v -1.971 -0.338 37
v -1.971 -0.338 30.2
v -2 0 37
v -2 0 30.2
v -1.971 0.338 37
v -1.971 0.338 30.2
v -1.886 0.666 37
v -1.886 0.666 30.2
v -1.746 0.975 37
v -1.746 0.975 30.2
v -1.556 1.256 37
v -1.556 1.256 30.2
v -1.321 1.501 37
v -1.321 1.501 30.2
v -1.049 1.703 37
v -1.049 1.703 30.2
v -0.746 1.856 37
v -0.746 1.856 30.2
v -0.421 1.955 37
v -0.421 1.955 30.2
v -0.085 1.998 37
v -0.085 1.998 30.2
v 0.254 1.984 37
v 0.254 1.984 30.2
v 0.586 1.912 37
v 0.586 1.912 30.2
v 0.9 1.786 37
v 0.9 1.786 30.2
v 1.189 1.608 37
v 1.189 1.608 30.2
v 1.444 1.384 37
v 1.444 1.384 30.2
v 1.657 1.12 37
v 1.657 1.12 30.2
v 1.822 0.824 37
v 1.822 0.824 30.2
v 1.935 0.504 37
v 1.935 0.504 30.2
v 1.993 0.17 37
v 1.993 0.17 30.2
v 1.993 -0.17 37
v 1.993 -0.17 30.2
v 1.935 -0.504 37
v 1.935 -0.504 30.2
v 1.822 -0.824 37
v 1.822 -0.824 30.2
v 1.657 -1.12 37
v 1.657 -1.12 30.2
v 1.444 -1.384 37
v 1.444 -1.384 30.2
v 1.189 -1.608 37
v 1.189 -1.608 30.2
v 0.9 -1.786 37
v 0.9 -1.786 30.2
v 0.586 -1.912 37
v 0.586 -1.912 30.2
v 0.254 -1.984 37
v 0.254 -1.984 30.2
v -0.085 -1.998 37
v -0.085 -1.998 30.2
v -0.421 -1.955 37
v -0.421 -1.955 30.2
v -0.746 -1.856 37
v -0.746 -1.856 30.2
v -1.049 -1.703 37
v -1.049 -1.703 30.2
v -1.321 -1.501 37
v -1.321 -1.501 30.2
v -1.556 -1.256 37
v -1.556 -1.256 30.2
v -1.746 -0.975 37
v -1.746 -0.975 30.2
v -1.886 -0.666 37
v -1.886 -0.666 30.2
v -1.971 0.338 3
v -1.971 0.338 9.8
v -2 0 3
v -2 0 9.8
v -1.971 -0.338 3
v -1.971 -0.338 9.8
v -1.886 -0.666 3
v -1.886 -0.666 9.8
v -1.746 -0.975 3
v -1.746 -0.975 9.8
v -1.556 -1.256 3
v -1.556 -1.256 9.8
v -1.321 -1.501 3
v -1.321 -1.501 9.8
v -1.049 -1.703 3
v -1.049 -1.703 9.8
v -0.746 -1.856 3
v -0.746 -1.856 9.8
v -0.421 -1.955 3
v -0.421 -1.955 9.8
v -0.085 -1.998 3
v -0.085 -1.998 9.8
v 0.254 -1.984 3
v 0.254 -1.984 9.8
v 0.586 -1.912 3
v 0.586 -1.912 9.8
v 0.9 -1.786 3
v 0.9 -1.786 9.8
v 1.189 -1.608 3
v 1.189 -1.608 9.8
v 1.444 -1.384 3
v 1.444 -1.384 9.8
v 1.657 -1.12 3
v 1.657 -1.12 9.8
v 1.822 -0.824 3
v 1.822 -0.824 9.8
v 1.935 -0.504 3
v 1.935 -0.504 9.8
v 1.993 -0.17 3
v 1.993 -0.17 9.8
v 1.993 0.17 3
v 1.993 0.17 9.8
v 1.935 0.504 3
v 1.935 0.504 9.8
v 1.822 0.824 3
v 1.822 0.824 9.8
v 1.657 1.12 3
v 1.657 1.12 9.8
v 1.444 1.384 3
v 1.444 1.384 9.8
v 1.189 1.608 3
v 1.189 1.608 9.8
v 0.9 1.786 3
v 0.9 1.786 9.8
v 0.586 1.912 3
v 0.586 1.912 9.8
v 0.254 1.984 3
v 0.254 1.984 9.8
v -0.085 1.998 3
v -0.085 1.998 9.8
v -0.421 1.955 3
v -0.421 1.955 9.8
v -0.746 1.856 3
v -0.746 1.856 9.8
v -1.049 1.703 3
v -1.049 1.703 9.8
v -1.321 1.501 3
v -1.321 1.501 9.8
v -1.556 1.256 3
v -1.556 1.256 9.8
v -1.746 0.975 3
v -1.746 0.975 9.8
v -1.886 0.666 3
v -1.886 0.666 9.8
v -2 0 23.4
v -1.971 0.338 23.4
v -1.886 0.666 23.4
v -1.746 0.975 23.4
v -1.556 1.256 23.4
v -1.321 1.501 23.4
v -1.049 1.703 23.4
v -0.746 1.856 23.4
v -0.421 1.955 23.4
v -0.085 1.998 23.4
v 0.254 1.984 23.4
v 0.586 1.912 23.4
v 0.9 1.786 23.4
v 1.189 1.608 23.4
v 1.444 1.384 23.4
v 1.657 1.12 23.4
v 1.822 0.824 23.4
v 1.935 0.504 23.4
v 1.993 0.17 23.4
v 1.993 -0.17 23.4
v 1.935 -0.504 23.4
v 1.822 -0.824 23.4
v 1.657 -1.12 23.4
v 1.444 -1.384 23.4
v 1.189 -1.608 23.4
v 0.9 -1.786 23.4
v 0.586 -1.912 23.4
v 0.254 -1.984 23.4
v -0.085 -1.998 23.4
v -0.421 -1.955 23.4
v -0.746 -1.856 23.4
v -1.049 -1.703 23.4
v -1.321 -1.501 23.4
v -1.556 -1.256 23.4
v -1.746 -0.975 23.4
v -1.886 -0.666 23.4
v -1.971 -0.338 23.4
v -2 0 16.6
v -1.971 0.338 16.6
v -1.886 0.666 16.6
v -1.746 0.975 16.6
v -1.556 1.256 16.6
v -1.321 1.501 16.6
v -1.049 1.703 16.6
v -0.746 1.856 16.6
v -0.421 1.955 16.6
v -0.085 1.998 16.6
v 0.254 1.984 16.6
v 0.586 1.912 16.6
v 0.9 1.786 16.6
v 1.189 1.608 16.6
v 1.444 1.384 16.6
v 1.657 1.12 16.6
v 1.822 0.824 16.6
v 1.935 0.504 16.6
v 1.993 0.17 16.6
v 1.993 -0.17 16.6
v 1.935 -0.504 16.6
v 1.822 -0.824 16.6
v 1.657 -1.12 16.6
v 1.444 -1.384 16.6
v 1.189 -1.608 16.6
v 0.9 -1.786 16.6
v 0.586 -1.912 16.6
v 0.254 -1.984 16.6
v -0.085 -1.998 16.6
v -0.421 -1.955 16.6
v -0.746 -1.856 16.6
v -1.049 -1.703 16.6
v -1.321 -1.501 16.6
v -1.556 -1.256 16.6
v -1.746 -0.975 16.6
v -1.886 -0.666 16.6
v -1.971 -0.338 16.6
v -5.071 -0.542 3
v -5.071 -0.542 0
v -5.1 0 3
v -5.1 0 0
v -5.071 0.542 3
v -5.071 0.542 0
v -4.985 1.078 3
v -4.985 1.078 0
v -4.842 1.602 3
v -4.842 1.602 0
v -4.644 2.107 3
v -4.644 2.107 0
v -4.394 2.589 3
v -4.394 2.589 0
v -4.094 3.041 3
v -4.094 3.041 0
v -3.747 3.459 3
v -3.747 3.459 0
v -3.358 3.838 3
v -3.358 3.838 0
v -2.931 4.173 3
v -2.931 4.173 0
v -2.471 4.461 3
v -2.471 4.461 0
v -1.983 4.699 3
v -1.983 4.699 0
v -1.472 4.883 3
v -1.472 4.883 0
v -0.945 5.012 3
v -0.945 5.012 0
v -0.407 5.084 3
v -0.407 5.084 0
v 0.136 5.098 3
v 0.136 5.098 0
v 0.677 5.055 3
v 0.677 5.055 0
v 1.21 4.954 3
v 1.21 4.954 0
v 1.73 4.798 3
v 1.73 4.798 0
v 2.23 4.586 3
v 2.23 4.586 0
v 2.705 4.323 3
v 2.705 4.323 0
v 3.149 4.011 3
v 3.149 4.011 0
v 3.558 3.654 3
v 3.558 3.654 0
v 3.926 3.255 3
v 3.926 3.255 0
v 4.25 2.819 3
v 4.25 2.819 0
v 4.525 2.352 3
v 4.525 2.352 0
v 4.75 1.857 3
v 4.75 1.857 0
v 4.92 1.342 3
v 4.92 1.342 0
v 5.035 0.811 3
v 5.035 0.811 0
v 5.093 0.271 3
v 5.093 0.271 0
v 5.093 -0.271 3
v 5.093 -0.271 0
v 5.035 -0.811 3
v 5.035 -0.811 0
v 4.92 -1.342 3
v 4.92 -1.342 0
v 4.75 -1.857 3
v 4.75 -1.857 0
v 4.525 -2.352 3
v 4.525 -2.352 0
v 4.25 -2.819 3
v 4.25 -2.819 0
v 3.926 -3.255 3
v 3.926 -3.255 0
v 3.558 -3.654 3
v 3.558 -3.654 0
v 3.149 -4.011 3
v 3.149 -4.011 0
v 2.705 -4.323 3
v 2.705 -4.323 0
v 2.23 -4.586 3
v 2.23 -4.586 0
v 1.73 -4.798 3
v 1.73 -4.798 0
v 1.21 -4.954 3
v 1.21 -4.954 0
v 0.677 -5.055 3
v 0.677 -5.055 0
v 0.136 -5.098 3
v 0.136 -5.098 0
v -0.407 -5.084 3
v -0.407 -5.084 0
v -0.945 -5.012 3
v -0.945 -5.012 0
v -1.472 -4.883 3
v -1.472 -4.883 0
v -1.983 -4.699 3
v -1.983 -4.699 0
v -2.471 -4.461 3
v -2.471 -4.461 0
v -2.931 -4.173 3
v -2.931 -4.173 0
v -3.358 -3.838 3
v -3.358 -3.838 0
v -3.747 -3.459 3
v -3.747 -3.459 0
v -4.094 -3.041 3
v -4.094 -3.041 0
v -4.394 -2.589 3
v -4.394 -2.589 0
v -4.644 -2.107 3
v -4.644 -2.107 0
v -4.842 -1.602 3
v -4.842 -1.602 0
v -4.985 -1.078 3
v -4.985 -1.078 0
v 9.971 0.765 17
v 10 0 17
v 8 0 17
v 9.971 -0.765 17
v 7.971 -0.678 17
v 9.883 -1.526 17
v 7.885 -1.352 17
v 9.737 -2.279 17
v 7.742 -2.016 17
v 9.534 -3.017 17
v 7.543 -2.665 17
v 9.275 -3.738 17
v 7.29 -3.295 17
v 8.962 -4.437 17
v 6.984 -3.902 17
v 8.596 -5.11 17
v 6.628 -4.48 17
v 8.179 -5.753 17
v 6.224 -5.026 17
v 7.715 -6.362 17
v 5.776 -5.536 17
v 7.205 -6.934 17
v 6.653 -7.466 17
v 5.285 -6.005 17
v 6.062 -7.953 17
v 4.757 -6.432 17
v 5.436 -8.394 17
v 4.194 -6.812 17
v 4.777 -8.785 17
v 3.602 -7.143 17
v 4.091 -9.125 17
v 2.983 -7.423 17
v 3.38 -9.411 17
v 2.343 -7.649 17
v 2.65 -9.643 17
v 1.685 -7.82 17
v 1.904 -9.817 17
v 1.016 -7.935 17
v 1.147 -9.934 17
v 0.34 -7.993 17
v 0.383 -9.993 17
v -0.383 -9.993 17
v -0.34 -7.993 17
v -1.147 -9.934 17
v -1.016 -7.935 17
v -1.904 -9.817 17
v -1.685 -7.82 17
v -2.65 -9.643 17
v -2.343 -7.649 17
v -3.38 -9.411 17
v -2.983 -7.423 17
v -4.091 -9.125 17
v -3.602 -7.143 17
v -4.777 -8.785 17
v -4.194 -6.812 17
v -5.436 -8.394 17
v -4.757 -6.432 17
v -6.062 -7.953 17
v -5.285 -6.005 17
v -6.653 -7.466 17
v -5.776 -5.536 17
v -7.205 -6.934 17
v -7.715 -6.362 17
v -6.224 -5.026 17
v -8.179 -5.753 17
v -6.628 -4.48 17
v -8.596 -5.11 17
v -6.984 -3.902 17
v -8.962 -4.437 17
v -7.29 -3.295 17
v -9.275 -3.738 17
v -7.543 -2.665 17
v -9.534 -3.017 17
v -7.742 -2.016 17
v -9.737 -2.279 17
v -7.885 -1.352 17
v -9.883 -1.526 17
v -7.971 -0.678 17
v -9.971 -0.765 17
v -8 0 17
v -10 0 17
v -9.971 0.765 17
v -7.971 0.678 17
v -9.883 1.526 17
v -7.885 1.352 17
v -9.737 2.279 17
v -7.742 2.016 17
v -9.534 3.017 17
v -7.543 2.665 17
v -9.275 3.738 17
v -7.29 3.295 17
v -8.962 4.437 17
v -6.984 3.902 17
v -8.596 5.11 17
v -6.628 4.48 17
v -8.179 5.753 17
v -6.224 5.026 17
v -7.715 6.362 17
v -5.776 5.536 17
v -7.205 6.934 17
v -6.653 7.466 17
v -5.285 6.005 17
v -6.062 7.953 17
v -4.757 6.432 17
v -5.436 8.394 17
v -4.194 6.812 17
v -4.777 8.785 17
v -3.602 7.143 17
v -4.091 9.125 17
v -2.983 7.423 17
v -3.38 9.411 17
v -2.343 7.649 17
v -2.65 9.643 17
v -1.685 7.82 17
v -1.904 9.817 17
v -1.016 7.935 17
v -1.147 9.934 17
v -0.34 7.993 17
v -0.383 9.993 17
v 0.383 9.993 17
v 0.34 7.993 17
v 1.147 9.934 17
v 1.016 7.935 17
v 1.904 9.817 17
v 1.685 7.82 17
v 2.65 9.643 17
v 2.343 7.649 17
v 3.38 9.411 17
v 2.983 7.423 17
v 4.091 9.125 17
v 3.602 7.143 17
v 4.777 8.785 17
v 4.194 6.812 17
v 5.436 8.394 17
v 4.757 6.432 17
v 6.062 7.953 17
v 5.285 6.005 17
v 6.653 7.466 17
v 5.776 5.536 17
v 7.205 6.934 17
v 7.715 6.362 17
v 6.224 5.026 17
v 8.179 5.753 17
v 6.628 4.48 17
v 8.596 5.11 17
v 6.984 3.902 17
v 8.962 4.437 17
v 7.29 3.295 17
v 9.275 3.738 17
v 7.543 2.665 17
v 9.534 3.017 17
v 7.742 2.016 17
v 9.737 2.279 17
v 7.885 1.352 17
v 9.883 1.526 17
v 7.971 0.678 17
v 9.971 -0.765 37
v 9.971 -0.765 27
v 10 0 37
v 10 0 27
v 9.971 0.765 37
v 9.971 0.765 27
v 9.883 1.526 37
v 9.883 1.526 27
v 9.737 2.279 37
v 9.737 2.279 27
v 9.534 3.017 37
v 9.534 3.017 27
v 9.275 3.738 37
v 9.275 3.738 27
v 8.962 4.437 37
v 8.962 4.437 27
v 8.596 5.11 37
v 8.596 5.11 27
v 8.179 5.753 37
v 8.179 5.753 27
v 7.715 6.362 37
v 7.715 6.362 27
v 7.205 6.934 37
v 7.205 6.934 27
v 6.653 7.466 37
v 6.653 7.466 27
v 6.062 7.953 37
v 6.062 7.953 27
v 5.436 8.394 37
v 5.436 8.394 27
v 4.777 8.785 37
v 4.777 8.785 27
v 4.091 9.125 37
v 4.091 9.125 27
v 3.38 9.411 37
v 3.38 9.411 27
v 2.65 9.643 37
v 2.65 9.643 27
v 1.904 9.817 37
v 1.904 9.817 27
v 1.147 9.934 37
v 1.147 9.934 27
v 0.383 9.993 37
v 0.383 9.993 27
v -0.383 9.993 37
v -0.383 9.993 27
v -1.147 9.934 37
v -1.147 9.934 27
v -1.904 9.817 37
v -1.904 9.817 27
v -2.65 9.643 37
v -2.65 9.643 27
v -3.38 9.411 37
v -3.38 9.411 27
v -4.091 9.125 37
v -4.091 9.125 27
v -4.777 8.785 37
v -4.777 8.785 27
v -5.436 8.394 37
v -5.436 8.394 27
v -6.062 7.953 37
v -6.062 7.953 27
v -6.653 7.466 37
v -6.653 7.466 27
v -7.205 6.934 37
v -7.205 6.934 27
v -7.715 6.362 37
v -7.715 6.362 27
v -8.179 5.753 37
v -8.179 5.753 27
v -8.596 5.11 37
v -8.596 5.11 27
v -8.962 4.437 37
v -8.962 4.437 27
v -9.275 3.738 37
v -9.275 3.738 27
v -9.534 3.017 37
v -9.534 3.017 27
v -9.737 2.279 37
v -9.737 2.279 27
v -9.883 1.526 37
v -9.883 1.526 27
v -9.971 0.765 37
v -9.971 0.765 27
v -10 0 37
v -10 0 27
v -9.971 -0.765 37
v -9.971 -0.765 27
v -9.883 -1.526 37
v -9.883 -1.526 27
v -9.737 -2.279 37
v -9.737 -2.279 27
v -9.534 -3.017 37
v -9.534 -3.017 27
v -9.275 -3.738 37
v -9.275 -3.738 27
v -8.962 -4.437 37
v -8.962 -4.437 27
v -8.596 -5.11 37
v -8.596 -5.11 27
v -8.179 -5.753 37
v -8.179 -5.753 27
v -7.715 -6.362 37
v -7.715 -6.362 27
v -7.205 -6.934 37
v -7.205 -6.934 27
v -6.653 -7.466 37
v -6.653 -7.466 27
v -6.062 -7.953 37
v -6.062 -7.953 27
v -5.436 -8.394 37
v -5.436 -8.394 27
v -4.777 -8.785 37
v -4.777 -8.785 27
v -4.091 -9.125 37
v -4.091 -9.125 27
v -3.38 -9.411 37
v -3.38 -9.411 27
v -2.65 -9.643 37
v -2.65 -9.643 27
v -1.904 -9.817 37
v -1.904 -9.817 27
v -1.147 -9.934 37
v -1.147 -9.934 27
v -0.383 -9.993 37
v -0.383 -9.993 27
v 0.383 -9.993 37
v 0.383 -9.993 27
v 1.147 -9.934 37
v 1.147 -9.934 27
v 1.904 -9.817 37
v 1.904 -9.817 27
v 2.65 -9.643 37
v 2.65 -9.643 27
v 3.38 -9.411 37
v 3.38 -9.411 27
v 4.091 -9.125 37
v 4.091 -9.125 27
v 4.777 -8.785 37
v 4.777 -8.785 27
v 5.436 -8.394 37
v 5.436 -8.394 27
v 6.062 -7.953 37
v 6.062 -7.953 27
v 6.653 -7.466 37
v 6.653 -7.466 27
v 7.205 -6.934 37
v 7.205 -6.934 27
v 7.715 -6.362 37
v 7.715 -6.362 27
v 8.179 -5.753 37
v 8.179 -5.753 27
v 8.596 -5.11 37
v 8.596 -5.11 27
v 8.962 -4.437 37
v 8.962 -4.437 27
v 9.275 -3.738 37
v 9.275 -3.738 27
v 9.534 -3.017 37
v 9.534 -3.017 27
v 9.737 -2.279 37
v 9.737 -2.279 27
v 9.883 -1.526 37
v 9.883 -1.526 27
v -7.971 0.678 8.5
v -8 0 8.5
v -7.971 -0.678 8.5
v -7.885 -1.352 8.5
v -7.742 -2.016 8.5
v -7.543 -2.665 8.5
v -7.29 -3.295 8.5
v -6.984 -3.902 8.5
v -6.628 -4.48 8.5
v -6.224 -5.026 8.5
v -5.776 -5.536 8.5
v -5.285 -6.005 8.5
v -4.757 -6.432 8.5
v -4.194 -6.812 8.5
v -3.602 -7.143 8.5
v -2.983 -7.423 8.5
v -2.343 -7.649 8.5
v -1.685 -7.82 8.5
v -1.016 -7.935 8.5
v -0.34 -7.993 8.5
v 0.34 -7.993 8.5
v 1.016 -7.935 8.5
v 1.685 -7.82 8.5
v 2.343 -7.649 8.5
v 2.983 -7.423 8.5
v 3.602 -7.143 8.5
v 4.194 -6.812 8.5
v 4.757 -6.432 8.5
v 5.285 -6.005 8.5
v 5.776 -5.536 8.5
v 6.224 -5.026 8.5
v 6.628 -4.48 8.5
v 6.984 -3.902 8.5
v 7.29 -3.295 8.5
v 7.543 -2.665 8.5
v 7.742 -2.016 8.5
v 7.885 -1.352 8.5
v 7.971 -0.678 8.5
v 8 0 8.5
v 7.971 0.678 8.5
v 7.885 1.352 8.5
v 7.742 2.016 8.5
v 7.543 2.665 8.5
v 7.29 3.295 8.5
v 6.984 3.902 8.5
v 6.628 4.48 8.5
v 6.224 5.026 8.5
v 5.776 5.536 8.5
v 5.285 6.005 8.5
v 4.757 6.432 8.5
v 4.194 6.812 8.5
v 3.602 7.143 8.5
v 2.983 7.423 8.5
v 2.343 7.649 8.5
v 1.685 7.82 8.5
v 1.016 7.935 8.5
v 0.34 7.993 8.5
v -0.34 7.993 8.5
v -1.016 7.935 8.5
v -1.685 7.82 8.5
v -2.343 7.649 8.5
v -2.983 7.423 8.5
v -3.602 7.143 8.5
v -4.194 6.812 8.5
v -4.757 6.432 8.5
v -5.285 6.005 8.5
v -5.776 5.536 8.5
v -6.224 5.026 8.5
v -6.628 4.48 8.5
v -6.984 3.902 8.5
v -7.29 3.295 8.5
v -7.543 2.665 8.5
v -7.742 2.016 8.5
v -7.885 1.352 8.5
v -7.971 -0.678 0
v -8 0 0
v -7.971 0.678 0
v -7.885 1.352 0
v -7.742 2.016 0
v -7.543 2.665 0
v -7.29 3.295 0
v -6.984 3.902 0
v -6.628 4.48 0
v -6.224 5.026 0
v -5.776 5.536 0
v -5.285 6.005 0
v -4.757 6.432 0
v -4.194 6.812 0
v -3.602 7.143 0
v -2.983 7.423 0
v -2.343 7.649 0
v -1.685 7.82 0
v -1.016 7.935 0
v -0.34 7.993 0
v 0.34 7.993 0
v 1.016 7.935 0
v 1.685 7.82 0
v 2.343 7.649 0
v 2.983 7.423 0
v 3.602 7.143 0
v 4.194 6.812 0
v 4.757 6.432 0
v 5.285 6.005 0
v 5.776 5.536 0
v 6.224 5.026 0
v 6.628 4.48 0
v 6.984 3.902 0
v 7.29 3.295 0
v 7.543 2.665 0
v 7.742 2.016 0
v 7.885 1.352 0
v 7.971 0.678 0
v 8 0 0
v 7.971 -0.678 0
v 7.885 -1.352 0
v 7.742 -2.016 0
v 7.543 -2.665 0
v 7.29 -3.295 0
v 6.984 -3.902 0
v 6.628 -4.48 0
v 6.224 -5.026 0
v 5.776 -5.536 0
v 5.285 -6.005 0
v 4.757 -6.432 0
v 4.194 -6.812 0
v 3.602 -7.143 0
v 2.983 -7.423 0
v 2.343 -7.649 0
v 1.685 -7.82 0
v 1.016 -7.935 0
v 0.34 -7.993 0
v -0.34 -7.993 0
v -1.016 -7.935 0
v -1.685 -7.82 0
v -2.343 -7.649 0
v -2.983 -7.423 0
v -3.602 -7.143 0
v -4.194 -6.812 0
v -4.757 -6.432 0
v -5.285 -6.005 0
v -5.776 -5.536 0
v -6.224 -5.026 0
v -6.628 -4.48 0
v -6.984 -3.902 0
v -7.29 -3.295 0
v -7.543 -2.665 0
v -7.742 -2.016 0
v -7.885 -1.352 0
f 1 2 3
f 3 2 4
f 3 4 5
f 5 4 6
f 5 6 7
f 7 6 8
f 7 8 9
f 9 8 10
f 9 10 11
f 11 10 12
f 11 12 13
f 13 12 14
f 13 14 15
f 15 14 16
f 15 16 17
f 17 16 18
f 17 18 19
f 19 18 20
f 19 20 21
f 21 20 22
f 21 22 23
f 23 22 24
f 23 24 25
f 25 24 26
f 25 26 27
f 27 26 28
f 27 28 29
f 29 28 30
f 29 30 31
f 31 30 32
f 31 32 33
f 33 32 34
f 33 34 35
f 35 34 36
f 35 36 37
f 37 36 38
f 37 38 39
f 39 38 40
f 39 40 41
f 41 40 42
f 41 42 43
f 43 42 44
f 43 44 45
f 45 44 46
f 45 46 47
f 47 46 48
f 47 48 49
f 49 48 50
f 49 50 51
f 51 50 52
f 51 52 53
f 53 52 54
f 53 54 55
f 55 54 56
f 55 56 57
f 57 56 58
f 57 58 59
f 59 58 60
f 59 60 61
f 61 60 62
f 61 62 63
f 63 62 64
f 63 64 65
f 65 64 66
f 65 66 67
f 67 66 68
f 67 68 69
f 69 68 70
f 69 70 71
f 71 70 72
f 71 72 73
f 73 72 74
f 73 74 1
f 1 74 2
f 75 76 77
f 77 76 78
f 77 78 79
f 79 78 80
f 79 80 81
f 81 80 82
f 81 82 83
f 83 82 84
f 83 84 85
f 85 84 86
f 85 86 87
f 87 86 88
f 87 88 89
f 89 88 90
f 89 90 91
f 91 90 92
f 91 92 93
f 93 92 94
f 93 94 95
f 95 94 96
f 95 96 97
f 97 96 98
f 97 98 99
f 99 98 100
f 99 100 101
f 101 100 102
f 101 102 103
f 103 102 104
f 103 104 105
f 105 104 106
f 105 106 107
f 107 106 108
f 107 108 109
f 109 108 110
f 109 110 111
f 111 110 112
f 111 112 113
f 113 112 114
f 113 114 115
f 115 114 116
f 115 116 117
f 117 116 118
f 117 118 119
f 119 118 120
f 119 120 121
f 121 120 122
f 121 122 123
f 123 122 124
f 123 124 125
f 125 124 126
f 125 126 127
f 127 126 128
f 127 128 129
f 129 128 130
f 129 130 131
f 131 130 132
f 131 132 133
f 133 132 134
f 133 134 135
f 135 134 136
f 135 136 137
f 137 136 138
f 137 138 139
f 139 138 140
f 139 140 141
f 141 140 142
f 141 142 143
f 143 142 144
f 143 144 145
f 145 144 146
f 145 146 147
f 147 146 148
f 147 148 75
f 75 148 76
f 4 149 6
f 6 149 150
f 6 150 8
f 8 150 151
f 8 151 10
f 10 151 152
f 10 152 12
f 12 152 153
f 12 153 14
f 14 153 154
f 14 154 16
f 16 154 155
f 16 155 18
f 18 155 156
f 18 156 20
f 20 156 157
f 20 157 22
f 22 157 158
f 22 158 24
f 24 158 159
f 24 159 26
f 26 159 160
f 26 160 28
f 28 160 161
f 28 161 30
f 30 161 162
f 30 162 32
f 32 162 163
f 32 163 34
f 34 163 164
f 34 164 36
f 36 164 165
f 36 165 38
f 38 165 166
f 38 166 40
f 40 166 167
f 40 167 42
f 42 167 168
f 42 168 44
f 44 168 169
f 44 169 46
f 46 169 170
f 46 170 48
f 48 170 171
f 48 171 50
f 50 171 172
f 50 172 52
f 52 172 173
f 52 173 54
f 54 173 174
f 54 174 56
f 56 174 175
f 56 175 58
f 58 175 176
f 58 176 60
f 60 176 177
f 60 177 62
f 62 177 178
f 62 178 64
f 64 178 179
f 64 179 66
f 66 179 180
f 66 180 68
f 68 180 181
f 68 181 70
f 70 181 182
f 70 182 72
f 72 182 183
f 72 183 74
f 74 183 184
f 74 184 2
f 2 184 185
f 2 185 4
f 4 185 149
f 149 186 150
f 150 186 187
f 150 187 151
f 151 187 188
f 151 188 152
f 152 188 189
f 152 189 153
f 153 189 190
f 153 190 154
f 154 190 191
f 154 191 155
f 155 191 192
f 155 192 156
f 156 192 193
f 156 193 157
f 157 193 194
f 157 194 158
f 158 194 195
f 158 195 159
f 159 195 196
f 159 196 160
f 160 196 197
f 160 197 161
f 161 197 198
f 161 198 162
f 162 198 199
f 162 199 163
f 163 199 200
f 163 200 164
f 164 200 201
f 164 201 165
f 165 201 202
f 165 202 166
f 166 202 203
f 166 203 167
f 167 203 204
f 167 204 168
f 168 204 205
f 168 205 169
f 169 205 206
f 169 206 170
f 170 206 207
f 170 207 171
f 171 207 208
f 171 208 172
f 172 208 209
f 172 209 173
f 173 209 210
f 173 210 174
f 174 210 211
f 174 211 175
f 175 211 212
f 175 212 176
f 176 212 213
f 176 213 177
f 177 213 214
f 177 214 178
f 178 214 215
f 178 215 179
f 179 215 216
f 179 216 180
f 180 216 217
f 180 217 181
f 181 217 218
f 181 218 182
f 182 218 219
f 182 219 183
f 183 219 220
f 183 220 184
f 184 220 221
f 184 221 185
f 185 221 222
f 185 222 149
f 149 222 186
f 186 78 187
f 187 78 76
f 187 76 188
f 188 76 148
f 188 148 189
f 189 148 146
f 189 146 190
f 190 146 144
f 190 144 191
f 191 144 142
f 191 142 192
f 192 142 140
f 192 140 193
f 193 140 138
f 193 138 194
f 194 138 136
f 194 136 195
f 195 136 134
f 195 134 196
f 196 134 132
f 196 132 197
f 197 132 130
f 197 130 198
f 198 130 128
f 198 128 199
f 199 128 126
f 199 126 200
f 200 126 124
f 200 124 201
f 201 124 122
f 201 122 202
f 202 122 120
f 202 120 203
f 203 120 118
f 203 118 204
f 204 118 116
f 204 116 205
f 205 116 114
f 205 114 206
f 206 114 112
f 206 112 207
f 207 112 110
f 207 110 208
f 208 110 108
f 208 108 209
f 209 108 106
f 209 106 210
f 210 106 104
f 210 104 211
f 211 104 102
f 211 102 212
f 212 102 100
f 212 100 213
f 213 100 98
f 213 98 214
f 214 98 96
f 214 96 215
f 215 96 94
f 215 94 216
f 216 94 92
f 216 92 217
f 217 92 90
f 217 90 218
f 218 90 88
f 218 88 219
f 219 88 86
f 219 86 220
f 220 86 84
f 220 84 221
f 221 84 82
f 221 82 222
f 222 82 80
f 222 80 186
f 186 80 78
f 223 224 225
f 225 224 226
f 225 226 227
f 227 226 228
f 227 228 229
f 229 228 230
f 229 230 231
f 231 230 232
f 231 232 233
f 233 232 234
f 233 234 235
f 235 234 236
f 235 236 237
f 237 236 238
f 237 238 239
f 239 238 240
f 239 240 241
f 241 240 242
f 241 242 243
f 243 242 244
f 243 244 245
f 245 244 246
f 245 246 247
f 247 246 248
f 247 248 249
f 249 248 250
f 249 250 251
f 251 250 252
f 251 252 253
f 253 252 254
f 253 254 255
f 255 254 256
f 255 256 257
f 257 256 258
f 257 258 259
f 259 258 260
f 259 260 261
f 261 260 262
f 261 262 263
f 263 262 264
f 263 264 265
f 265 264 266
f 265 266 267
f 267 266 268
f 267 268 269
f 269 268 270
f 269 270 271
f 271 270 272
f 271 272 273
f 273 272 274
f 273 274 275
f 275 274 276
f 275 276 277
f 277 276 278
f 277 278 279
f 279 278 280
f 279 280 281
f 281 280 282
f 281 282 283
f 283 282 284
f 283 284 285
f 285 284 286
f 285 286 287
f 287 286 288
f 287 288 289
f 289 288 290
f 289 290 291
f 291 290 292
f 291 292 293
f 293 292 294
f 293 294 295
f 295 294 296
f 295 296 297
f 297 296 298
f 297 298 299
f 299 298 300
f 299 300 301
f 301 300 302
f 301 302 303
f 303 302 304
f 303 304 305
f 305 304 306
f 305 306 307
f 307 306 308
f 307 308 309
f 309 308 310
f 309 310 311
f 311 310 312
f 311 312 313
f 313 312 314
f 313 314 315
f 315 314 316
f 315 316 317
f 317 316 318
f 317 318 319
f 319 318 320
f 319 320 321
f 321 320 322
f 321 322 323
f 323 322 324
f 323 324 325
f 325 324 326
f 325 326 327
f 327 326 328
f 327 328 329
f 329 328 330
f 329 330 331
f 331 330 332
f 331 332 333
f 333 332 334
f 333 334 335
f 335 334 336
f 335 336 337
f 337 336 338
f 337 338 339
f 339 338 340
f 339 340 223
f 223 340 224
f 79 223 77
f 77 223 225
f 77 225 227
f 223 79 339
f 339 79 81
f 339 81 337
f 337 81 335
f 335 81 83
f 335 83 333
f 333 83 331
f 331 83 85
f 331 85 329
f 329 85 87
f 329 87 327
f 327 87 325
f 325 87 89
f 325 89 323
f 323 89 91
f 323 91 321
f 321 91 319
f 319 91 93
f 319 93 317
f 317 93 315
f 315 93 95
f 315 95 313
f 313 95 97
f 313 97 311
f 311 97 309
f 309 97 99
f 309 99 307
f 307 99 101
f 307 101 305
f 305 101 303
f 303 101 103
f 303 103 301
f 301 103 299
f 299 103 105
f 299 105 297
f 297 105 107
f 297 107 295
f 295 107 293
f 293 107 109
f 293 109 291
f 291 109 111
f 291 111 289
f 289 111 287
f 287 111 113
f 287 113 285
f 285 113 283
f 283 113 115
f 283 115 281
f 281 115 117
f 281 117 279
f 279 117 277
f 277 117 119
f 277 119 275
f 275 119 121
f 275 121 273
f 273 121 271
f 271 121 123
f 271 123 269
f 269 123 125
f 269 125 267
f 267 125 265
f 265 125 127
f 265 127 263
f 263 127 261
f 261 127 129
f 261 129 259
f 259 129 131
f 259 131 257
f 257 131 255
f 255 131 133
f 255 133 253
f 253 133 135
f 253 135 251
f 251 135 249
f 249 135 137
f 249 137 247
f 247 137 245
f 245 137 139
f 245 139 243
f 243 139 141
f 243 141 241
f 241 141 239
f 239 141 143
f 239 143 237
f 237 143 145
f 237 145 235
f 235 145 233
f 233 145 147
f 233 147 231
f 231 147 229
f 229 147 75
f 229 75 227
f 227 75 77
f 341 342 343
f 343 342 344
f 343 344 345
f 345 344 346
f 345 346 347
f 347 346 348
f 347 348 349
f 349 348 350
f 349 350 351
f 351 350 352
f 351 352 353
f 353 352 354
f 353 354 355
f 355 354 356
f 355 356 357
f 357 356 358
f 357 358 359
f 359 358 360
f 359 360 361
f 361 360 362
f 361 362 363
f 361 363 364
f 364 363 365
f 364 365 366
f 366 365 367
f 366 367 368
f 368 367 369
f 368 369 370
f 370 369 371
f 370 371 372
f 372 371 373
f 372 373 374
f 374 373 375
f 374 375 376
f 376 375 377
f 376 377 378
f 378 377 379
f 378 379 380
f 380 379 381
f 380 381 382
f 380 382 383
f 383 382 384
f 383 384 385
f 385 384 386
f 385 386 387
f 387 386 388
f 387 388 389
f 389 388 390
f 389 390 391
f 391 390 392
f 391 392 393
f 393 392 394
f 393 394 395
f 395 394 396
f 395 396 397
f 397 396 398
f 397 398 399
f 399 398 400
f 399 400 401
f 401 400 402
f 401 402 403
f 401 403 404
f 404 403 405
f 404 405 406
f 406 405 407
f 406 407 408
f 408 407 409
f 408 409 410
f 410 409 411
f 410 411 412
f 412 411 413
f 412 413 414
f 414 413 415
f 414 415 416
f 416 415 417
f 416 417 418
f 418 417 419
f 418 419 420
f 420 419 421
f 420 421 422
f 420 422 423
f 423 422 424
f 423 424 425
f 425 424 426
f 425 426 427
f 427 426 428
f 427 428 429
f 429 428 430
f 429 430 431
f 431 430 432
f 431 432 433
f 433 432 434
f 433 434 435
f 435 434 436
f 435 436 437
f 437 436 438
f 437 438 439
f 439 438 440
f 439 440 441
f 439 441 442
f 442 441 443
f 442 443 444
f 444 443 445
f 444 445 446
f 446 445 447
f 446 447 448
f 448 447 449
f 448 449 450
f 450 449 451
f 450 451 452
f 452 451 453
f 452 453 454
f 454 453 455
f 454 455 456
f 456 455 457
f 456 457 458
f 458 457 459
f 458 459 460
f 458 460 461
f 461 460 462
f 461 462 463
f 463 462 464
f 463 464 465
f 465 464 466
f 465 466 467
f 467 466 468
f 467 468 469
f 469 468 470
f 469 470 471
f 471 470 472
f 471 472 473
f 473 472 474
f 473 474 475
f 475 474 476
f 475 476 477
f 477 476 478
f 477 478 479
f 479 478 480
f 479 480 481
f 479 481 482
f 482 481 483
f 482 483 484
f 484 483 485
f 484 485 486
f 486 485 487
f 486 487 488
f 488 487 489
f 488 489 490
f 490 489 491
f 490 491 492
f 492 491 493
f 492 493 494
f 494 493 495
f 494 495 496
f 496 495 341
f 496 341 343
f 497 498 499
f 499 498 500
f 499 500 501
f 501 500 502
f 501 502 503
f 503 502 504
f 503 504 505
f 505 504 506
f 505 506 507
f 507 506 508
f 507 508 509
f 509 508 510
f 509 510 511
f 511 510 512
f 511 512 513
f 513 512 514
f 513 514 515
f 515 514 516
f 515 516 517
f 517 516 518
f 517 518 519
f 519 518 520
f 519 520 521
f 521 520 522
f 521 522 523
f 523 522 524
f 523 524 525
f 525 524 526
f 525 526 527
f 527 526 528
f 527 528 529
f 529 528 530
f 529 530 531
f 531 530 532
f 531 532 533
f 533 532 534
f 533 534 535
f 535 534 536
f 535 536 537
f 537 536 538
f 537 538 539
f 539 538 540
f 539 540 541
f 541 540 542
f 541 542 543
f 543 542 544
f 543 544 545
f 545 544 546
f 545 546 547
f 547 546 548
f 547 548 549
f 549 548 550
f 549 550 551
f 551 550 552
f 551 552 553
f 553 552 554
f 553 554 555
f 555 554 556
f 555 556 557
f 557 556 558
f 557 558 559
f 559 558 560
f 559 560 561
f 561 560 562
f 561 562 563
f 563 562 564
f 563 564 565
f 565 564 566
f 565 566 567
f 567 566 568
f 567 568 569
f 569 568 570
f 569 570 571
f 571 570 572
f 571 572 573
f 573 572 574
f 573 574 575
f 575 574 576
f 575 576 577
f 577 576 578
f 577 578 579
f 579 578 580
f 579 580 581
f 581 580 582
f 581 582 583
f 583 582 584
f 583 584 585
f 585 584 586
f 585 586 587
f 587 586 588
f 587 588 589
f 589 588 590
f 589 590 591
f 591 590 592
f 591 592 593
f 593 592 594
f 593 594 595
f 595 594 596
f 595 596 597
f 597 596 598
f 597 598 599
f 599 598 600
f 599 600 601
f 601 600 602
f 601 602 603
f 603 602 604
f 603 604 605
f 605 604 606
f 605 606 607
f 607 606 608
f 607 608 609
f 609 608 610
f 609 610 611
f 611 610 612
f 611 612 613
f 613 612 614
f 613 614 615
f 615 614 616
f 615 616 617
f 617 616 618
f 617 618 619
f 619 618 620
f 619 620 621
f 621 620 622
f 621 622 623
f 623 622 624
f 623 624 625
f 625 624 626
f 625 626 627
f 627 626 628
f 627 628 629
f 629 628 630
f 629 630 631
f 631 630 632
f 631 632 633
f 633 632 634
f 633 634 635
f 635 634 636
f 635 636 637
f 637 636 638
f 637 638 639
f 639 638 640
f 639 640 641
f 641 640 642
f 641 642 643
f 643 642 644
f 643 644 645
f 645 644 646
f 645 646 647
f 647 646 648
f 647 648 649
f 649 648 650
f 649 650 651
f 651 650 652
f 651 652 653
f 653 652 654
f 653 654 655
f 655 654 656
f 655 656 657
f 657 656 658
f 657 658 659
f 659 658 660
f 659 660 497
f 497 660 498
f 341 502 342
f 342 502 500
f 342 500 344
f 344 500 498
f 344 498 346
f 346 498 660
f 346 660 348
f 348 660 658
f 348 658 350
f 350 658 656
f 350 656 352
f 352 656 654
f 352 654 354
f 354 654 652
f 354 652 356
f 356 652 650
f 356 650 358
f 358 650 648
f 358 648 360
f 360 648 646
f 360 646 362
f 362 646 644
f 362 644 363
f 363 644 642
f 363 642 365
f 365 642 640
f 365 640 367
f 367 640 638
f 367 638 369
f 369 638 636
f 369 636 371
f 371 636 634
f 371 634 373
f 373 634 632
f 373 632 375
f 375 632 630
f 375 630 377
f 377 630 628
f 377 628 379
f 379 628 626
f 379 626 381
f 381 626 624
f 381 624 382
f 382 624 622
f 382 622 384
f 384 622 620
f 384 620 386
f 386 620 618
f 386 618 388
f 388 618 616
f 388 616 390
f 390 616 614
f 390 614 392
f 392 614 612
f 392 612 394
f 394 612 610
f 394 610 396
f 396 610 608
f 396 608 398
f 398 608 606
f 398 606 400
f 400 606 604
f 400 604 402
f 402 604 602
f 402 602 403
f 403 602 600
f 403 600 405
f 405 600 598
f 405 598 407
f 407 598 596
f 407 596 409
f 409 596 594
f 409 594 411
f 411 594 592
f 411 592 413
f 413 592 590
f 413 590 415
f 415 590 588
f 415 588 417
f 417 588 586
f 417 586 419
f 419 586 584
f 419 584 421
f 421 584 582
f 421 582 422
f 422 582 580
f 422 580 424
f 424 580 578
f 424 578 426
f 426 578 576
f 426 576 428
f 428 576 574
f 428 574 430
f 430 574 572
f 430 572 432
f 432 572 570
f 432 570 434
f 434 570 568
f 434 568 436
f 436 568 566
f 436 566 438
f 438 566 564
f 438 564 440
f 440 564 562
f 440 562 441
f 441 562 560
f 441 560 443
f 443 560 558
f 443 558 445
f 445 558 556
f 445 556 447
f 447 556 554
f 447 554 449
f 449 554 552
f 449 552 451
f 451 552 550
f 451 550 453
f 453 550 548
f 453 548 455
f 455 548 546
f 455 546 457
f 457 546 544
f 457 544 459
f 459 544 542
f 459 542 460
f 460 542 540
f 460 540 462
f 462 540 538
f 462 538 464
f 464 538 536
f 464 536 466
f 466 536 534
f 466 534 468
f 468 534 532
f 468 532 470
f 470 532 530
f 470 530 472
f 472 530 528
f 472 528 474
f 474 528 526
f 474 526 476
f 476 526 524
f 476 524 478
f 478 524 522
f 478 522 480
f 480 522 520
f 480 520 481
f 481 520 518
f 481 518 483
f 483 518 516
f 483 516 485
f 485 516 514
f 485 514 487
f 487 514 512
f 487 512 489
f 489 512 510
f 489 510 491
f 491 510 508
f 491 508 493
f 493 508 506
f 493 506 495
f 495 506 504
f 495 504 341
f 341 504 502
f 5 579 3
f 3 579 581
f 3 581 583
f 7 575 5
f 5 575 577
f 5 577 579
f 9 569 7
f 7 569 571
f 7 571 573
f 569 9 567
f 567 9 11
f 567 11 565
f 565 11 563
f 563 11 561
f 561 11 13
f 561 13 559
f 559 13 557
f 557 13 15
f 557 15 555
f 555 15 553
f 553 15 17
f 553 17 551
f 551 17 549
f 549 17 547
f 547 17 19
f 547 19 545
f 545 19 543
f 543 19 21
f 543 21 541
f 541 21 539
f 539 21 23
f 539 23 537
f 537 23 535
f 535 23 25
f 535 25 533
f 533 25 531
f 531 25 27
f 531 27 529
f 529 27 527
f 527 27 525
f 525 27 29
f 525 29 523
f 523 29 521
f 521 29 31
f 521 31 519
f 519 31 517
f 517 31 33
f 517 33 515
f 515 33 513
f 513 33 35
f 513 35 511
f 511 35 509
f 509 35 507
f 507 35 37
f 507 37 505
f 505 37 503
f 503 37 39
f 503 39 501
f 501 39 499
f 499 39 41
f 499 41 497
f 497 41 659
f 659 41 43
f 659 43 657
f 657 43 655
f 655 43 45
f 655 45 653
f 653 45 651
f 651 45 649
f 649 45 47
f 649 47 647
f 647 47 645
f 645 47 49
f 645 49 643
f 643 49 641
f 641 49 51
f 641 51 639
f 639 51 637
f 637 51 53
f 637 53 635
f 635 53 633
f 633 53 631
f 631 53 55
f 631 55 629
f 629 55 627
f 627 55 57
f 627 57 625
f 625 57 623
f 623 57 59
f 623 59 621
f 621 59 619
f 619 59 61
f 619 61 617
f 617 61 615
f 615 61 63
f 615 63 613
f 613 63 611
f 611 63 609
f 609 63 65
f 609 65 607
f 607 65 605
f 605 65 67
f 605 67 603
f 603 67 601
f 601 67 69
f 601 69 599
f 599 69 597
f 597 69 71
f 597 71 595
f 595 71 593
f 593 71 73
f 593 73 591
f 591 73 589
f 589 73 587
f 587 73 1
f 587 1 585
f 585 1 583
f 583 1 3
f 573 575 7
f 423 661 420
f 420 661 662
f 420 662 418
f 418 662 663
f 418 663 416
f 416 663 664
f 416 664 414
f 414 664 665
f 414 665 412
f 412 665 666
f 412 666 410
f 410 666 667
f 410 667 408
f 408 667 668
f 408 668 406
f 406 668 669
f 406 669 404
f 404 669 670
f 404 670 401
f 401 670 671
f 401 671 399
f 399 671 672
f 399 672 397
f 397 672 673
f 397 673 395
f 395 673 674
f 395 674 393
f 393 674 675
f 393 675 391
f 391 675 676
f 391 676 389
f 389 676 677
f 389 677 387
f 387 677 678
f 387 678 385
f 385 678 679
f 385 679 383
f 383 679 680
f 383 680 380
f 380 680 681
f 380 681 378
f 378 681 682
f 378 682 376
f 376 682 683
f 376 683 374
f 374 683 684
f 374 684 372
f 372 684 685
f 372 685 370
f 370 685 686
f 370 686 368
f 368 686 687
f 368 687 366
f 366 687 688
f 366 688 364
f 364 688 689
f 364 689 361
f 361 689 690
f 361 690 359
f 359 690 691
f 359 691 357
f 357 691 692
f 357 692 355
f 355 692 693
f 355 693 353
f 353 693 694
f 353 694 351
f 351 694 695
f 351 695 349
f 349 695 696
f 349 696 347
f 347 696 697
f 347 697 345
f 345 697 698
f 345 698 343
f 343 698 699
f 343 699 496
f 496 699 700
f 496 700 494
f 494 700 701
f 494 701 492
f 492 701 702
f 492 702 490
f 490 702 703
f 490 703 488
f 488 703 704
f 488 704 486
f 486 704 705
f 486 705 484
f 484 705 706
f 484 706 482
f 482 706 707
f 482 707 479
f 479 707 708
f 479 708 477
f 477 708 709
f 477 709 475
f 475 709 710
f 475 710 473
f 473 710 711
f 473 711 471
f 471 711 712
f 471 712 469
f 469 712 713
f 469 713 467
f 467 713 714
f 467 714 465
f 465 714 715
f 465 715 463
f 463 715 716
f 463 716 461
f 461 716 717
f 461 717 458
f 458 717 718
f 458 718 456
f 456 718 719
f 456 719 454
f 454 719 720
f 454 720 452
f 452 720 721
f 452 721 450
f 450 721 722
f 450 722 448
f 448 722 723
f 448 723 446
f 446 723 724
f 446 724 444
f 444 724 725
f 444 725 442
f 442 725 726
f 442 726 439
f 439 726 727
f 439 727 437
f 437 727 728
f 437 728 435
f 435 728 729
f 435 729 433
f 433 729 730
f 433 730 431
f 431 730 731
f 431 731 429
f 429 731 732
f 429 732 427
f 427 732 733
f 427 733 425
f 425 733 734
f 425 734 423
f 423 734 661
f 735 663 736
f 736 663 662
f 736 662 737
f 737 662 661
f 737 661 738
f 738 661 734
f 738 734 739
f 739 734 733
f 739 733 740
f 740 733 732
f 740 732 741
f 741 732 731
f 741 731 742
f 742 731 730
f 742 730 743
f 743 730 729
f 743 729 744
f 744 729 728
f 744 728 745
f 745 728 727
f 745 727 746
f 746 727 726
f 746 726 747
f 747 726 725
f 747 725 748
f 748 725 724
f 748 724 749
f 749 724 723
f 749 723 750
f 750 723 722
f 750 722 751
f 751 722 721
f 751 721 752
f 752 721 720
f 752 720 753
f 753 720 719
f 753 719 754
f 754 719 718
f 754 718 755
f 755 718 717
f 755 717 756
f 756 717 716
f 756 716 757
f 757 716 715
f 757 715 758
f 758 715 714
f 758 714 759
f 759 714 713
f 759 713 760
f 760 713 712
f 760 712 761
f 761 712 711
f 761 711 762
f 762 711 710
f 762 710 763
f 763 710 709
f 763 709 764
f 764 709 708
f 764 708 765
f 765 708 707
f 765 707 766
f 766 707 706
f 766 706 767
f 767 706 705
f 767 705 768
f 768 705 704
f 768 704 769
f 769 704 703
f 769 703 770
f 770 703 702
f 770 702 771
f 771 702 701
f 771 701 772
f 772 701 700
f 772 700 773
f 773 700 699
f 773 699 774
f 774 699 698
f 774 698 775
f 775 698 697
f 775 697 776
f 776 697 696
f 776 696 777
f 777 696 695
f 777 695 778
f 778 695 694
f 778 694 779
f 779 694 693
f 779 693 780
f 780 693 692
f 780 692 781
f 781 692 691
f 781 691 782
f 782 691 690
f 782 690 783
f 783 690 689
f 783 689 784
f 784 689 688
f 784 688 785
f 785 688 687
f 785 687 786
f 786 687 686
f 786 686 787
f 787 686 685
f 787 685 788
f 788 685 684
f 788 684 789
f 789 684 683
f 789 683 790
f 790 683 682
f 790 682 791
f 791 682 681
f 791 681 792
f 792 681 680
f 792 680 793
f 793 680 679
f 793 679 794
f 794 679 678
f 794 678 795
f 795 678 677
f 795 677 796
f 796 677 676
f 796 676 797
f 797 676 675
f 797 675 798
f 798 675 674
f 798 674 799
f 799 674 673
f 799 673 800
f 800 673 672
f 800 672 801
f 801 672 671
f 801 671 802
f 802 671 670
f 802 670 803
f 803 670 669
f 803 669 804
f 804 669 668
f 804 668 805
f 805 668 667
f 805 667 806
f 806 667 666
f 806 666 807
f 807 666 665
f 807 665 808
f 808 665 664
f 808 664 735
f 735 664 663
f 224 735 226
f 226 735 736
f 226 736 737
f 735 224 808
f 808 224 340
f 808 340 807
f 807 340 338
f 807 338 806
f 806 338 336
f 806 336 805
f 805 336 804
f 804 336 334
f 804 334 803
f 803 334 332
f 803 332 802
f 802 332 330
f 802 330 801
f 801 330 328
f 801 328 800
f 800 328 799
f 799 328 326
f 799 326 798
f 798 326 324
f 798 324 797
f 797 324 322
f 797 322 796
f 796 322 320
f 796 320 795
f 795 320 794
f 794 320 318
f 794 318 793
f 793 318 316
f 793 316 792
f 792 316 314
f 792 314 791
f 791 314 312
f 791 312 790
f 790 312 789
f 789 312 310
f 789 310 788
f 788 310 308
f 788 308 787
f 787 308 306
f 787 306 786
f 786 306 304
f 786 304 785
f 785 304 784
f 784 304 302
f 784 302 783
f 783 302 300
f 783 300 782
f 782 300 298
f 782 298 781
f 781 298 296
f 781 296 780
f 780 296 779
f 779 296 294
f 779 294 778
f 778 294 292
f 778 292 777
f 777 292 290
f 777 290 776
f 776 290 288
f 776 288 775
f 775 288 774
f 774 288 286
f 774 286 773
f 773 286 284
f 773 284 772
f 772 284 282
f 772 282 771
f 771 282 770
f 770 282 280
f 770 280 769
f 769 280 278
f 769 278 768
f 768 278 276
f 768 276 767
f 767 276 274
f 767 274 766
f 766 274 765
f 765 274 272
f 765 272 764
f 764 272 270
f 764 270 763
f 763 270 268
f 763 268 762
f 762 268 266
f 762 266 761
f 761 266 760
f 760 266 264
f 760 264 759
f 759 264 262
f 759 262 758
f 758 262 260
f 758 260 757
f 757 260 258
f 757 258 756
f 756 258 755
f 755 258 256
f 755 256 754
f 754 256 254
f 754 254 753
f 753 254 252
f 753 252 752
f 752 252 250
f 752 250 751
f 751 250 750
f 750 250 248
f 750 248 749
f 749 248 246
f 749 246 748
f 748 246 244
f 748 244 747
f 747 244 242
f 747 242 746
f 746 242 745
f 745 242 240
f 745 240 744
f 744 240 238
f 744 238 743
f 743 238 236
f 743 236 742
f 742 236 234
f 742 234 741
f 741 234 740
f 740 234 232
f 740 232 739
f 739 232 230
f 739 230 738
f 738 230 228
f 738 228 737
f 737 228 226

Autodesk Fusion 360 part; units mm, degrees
sketch "Sketch1" plane through (0, 0, 0) normal (0, 0, 1) x (1, 0, 0)
  circle A0 centre (0, 0) radius 8
  dimension "d1" = 16
extrude "Extrude1" add sketch "Sketch1" along normal blind 17
sketch "Sketch2" plane through (0, 0, 17) normal (0, 0, 1) x (-1, 0, 0)
  circle A0 centre (0, 0) radius 8
  circle A1 centre (0, 0) radius 10
  dimension "d4" = 20
extrude "Extrude2" add sketch "Sketch2" along normal blind 20 contours A0 | A1
sketch "Sketch3" plane through (0, 0, 0) normal (0, 0, -1) x (1, 0, 0)
  circle A0 centre (0, 0) radius 8
  circle A1 centre (0, 0) radius 5.1
  dimension "d7" = 10.2
extrude "Extrude3" cut sketch "Sketch3" against normal blind 3 contours A1
sketch "Sketch4" plane through (0, 0, 3) normal (0, 0, -1) x (1, 0, 0)
  circle A0 centre (0, 0) radius 5.1
  circle A1 centre (0, 0) radius 2
extrude "Extrude4" cut sketch "Sketch4" against normal up to surface (34 mm away) contours A1
